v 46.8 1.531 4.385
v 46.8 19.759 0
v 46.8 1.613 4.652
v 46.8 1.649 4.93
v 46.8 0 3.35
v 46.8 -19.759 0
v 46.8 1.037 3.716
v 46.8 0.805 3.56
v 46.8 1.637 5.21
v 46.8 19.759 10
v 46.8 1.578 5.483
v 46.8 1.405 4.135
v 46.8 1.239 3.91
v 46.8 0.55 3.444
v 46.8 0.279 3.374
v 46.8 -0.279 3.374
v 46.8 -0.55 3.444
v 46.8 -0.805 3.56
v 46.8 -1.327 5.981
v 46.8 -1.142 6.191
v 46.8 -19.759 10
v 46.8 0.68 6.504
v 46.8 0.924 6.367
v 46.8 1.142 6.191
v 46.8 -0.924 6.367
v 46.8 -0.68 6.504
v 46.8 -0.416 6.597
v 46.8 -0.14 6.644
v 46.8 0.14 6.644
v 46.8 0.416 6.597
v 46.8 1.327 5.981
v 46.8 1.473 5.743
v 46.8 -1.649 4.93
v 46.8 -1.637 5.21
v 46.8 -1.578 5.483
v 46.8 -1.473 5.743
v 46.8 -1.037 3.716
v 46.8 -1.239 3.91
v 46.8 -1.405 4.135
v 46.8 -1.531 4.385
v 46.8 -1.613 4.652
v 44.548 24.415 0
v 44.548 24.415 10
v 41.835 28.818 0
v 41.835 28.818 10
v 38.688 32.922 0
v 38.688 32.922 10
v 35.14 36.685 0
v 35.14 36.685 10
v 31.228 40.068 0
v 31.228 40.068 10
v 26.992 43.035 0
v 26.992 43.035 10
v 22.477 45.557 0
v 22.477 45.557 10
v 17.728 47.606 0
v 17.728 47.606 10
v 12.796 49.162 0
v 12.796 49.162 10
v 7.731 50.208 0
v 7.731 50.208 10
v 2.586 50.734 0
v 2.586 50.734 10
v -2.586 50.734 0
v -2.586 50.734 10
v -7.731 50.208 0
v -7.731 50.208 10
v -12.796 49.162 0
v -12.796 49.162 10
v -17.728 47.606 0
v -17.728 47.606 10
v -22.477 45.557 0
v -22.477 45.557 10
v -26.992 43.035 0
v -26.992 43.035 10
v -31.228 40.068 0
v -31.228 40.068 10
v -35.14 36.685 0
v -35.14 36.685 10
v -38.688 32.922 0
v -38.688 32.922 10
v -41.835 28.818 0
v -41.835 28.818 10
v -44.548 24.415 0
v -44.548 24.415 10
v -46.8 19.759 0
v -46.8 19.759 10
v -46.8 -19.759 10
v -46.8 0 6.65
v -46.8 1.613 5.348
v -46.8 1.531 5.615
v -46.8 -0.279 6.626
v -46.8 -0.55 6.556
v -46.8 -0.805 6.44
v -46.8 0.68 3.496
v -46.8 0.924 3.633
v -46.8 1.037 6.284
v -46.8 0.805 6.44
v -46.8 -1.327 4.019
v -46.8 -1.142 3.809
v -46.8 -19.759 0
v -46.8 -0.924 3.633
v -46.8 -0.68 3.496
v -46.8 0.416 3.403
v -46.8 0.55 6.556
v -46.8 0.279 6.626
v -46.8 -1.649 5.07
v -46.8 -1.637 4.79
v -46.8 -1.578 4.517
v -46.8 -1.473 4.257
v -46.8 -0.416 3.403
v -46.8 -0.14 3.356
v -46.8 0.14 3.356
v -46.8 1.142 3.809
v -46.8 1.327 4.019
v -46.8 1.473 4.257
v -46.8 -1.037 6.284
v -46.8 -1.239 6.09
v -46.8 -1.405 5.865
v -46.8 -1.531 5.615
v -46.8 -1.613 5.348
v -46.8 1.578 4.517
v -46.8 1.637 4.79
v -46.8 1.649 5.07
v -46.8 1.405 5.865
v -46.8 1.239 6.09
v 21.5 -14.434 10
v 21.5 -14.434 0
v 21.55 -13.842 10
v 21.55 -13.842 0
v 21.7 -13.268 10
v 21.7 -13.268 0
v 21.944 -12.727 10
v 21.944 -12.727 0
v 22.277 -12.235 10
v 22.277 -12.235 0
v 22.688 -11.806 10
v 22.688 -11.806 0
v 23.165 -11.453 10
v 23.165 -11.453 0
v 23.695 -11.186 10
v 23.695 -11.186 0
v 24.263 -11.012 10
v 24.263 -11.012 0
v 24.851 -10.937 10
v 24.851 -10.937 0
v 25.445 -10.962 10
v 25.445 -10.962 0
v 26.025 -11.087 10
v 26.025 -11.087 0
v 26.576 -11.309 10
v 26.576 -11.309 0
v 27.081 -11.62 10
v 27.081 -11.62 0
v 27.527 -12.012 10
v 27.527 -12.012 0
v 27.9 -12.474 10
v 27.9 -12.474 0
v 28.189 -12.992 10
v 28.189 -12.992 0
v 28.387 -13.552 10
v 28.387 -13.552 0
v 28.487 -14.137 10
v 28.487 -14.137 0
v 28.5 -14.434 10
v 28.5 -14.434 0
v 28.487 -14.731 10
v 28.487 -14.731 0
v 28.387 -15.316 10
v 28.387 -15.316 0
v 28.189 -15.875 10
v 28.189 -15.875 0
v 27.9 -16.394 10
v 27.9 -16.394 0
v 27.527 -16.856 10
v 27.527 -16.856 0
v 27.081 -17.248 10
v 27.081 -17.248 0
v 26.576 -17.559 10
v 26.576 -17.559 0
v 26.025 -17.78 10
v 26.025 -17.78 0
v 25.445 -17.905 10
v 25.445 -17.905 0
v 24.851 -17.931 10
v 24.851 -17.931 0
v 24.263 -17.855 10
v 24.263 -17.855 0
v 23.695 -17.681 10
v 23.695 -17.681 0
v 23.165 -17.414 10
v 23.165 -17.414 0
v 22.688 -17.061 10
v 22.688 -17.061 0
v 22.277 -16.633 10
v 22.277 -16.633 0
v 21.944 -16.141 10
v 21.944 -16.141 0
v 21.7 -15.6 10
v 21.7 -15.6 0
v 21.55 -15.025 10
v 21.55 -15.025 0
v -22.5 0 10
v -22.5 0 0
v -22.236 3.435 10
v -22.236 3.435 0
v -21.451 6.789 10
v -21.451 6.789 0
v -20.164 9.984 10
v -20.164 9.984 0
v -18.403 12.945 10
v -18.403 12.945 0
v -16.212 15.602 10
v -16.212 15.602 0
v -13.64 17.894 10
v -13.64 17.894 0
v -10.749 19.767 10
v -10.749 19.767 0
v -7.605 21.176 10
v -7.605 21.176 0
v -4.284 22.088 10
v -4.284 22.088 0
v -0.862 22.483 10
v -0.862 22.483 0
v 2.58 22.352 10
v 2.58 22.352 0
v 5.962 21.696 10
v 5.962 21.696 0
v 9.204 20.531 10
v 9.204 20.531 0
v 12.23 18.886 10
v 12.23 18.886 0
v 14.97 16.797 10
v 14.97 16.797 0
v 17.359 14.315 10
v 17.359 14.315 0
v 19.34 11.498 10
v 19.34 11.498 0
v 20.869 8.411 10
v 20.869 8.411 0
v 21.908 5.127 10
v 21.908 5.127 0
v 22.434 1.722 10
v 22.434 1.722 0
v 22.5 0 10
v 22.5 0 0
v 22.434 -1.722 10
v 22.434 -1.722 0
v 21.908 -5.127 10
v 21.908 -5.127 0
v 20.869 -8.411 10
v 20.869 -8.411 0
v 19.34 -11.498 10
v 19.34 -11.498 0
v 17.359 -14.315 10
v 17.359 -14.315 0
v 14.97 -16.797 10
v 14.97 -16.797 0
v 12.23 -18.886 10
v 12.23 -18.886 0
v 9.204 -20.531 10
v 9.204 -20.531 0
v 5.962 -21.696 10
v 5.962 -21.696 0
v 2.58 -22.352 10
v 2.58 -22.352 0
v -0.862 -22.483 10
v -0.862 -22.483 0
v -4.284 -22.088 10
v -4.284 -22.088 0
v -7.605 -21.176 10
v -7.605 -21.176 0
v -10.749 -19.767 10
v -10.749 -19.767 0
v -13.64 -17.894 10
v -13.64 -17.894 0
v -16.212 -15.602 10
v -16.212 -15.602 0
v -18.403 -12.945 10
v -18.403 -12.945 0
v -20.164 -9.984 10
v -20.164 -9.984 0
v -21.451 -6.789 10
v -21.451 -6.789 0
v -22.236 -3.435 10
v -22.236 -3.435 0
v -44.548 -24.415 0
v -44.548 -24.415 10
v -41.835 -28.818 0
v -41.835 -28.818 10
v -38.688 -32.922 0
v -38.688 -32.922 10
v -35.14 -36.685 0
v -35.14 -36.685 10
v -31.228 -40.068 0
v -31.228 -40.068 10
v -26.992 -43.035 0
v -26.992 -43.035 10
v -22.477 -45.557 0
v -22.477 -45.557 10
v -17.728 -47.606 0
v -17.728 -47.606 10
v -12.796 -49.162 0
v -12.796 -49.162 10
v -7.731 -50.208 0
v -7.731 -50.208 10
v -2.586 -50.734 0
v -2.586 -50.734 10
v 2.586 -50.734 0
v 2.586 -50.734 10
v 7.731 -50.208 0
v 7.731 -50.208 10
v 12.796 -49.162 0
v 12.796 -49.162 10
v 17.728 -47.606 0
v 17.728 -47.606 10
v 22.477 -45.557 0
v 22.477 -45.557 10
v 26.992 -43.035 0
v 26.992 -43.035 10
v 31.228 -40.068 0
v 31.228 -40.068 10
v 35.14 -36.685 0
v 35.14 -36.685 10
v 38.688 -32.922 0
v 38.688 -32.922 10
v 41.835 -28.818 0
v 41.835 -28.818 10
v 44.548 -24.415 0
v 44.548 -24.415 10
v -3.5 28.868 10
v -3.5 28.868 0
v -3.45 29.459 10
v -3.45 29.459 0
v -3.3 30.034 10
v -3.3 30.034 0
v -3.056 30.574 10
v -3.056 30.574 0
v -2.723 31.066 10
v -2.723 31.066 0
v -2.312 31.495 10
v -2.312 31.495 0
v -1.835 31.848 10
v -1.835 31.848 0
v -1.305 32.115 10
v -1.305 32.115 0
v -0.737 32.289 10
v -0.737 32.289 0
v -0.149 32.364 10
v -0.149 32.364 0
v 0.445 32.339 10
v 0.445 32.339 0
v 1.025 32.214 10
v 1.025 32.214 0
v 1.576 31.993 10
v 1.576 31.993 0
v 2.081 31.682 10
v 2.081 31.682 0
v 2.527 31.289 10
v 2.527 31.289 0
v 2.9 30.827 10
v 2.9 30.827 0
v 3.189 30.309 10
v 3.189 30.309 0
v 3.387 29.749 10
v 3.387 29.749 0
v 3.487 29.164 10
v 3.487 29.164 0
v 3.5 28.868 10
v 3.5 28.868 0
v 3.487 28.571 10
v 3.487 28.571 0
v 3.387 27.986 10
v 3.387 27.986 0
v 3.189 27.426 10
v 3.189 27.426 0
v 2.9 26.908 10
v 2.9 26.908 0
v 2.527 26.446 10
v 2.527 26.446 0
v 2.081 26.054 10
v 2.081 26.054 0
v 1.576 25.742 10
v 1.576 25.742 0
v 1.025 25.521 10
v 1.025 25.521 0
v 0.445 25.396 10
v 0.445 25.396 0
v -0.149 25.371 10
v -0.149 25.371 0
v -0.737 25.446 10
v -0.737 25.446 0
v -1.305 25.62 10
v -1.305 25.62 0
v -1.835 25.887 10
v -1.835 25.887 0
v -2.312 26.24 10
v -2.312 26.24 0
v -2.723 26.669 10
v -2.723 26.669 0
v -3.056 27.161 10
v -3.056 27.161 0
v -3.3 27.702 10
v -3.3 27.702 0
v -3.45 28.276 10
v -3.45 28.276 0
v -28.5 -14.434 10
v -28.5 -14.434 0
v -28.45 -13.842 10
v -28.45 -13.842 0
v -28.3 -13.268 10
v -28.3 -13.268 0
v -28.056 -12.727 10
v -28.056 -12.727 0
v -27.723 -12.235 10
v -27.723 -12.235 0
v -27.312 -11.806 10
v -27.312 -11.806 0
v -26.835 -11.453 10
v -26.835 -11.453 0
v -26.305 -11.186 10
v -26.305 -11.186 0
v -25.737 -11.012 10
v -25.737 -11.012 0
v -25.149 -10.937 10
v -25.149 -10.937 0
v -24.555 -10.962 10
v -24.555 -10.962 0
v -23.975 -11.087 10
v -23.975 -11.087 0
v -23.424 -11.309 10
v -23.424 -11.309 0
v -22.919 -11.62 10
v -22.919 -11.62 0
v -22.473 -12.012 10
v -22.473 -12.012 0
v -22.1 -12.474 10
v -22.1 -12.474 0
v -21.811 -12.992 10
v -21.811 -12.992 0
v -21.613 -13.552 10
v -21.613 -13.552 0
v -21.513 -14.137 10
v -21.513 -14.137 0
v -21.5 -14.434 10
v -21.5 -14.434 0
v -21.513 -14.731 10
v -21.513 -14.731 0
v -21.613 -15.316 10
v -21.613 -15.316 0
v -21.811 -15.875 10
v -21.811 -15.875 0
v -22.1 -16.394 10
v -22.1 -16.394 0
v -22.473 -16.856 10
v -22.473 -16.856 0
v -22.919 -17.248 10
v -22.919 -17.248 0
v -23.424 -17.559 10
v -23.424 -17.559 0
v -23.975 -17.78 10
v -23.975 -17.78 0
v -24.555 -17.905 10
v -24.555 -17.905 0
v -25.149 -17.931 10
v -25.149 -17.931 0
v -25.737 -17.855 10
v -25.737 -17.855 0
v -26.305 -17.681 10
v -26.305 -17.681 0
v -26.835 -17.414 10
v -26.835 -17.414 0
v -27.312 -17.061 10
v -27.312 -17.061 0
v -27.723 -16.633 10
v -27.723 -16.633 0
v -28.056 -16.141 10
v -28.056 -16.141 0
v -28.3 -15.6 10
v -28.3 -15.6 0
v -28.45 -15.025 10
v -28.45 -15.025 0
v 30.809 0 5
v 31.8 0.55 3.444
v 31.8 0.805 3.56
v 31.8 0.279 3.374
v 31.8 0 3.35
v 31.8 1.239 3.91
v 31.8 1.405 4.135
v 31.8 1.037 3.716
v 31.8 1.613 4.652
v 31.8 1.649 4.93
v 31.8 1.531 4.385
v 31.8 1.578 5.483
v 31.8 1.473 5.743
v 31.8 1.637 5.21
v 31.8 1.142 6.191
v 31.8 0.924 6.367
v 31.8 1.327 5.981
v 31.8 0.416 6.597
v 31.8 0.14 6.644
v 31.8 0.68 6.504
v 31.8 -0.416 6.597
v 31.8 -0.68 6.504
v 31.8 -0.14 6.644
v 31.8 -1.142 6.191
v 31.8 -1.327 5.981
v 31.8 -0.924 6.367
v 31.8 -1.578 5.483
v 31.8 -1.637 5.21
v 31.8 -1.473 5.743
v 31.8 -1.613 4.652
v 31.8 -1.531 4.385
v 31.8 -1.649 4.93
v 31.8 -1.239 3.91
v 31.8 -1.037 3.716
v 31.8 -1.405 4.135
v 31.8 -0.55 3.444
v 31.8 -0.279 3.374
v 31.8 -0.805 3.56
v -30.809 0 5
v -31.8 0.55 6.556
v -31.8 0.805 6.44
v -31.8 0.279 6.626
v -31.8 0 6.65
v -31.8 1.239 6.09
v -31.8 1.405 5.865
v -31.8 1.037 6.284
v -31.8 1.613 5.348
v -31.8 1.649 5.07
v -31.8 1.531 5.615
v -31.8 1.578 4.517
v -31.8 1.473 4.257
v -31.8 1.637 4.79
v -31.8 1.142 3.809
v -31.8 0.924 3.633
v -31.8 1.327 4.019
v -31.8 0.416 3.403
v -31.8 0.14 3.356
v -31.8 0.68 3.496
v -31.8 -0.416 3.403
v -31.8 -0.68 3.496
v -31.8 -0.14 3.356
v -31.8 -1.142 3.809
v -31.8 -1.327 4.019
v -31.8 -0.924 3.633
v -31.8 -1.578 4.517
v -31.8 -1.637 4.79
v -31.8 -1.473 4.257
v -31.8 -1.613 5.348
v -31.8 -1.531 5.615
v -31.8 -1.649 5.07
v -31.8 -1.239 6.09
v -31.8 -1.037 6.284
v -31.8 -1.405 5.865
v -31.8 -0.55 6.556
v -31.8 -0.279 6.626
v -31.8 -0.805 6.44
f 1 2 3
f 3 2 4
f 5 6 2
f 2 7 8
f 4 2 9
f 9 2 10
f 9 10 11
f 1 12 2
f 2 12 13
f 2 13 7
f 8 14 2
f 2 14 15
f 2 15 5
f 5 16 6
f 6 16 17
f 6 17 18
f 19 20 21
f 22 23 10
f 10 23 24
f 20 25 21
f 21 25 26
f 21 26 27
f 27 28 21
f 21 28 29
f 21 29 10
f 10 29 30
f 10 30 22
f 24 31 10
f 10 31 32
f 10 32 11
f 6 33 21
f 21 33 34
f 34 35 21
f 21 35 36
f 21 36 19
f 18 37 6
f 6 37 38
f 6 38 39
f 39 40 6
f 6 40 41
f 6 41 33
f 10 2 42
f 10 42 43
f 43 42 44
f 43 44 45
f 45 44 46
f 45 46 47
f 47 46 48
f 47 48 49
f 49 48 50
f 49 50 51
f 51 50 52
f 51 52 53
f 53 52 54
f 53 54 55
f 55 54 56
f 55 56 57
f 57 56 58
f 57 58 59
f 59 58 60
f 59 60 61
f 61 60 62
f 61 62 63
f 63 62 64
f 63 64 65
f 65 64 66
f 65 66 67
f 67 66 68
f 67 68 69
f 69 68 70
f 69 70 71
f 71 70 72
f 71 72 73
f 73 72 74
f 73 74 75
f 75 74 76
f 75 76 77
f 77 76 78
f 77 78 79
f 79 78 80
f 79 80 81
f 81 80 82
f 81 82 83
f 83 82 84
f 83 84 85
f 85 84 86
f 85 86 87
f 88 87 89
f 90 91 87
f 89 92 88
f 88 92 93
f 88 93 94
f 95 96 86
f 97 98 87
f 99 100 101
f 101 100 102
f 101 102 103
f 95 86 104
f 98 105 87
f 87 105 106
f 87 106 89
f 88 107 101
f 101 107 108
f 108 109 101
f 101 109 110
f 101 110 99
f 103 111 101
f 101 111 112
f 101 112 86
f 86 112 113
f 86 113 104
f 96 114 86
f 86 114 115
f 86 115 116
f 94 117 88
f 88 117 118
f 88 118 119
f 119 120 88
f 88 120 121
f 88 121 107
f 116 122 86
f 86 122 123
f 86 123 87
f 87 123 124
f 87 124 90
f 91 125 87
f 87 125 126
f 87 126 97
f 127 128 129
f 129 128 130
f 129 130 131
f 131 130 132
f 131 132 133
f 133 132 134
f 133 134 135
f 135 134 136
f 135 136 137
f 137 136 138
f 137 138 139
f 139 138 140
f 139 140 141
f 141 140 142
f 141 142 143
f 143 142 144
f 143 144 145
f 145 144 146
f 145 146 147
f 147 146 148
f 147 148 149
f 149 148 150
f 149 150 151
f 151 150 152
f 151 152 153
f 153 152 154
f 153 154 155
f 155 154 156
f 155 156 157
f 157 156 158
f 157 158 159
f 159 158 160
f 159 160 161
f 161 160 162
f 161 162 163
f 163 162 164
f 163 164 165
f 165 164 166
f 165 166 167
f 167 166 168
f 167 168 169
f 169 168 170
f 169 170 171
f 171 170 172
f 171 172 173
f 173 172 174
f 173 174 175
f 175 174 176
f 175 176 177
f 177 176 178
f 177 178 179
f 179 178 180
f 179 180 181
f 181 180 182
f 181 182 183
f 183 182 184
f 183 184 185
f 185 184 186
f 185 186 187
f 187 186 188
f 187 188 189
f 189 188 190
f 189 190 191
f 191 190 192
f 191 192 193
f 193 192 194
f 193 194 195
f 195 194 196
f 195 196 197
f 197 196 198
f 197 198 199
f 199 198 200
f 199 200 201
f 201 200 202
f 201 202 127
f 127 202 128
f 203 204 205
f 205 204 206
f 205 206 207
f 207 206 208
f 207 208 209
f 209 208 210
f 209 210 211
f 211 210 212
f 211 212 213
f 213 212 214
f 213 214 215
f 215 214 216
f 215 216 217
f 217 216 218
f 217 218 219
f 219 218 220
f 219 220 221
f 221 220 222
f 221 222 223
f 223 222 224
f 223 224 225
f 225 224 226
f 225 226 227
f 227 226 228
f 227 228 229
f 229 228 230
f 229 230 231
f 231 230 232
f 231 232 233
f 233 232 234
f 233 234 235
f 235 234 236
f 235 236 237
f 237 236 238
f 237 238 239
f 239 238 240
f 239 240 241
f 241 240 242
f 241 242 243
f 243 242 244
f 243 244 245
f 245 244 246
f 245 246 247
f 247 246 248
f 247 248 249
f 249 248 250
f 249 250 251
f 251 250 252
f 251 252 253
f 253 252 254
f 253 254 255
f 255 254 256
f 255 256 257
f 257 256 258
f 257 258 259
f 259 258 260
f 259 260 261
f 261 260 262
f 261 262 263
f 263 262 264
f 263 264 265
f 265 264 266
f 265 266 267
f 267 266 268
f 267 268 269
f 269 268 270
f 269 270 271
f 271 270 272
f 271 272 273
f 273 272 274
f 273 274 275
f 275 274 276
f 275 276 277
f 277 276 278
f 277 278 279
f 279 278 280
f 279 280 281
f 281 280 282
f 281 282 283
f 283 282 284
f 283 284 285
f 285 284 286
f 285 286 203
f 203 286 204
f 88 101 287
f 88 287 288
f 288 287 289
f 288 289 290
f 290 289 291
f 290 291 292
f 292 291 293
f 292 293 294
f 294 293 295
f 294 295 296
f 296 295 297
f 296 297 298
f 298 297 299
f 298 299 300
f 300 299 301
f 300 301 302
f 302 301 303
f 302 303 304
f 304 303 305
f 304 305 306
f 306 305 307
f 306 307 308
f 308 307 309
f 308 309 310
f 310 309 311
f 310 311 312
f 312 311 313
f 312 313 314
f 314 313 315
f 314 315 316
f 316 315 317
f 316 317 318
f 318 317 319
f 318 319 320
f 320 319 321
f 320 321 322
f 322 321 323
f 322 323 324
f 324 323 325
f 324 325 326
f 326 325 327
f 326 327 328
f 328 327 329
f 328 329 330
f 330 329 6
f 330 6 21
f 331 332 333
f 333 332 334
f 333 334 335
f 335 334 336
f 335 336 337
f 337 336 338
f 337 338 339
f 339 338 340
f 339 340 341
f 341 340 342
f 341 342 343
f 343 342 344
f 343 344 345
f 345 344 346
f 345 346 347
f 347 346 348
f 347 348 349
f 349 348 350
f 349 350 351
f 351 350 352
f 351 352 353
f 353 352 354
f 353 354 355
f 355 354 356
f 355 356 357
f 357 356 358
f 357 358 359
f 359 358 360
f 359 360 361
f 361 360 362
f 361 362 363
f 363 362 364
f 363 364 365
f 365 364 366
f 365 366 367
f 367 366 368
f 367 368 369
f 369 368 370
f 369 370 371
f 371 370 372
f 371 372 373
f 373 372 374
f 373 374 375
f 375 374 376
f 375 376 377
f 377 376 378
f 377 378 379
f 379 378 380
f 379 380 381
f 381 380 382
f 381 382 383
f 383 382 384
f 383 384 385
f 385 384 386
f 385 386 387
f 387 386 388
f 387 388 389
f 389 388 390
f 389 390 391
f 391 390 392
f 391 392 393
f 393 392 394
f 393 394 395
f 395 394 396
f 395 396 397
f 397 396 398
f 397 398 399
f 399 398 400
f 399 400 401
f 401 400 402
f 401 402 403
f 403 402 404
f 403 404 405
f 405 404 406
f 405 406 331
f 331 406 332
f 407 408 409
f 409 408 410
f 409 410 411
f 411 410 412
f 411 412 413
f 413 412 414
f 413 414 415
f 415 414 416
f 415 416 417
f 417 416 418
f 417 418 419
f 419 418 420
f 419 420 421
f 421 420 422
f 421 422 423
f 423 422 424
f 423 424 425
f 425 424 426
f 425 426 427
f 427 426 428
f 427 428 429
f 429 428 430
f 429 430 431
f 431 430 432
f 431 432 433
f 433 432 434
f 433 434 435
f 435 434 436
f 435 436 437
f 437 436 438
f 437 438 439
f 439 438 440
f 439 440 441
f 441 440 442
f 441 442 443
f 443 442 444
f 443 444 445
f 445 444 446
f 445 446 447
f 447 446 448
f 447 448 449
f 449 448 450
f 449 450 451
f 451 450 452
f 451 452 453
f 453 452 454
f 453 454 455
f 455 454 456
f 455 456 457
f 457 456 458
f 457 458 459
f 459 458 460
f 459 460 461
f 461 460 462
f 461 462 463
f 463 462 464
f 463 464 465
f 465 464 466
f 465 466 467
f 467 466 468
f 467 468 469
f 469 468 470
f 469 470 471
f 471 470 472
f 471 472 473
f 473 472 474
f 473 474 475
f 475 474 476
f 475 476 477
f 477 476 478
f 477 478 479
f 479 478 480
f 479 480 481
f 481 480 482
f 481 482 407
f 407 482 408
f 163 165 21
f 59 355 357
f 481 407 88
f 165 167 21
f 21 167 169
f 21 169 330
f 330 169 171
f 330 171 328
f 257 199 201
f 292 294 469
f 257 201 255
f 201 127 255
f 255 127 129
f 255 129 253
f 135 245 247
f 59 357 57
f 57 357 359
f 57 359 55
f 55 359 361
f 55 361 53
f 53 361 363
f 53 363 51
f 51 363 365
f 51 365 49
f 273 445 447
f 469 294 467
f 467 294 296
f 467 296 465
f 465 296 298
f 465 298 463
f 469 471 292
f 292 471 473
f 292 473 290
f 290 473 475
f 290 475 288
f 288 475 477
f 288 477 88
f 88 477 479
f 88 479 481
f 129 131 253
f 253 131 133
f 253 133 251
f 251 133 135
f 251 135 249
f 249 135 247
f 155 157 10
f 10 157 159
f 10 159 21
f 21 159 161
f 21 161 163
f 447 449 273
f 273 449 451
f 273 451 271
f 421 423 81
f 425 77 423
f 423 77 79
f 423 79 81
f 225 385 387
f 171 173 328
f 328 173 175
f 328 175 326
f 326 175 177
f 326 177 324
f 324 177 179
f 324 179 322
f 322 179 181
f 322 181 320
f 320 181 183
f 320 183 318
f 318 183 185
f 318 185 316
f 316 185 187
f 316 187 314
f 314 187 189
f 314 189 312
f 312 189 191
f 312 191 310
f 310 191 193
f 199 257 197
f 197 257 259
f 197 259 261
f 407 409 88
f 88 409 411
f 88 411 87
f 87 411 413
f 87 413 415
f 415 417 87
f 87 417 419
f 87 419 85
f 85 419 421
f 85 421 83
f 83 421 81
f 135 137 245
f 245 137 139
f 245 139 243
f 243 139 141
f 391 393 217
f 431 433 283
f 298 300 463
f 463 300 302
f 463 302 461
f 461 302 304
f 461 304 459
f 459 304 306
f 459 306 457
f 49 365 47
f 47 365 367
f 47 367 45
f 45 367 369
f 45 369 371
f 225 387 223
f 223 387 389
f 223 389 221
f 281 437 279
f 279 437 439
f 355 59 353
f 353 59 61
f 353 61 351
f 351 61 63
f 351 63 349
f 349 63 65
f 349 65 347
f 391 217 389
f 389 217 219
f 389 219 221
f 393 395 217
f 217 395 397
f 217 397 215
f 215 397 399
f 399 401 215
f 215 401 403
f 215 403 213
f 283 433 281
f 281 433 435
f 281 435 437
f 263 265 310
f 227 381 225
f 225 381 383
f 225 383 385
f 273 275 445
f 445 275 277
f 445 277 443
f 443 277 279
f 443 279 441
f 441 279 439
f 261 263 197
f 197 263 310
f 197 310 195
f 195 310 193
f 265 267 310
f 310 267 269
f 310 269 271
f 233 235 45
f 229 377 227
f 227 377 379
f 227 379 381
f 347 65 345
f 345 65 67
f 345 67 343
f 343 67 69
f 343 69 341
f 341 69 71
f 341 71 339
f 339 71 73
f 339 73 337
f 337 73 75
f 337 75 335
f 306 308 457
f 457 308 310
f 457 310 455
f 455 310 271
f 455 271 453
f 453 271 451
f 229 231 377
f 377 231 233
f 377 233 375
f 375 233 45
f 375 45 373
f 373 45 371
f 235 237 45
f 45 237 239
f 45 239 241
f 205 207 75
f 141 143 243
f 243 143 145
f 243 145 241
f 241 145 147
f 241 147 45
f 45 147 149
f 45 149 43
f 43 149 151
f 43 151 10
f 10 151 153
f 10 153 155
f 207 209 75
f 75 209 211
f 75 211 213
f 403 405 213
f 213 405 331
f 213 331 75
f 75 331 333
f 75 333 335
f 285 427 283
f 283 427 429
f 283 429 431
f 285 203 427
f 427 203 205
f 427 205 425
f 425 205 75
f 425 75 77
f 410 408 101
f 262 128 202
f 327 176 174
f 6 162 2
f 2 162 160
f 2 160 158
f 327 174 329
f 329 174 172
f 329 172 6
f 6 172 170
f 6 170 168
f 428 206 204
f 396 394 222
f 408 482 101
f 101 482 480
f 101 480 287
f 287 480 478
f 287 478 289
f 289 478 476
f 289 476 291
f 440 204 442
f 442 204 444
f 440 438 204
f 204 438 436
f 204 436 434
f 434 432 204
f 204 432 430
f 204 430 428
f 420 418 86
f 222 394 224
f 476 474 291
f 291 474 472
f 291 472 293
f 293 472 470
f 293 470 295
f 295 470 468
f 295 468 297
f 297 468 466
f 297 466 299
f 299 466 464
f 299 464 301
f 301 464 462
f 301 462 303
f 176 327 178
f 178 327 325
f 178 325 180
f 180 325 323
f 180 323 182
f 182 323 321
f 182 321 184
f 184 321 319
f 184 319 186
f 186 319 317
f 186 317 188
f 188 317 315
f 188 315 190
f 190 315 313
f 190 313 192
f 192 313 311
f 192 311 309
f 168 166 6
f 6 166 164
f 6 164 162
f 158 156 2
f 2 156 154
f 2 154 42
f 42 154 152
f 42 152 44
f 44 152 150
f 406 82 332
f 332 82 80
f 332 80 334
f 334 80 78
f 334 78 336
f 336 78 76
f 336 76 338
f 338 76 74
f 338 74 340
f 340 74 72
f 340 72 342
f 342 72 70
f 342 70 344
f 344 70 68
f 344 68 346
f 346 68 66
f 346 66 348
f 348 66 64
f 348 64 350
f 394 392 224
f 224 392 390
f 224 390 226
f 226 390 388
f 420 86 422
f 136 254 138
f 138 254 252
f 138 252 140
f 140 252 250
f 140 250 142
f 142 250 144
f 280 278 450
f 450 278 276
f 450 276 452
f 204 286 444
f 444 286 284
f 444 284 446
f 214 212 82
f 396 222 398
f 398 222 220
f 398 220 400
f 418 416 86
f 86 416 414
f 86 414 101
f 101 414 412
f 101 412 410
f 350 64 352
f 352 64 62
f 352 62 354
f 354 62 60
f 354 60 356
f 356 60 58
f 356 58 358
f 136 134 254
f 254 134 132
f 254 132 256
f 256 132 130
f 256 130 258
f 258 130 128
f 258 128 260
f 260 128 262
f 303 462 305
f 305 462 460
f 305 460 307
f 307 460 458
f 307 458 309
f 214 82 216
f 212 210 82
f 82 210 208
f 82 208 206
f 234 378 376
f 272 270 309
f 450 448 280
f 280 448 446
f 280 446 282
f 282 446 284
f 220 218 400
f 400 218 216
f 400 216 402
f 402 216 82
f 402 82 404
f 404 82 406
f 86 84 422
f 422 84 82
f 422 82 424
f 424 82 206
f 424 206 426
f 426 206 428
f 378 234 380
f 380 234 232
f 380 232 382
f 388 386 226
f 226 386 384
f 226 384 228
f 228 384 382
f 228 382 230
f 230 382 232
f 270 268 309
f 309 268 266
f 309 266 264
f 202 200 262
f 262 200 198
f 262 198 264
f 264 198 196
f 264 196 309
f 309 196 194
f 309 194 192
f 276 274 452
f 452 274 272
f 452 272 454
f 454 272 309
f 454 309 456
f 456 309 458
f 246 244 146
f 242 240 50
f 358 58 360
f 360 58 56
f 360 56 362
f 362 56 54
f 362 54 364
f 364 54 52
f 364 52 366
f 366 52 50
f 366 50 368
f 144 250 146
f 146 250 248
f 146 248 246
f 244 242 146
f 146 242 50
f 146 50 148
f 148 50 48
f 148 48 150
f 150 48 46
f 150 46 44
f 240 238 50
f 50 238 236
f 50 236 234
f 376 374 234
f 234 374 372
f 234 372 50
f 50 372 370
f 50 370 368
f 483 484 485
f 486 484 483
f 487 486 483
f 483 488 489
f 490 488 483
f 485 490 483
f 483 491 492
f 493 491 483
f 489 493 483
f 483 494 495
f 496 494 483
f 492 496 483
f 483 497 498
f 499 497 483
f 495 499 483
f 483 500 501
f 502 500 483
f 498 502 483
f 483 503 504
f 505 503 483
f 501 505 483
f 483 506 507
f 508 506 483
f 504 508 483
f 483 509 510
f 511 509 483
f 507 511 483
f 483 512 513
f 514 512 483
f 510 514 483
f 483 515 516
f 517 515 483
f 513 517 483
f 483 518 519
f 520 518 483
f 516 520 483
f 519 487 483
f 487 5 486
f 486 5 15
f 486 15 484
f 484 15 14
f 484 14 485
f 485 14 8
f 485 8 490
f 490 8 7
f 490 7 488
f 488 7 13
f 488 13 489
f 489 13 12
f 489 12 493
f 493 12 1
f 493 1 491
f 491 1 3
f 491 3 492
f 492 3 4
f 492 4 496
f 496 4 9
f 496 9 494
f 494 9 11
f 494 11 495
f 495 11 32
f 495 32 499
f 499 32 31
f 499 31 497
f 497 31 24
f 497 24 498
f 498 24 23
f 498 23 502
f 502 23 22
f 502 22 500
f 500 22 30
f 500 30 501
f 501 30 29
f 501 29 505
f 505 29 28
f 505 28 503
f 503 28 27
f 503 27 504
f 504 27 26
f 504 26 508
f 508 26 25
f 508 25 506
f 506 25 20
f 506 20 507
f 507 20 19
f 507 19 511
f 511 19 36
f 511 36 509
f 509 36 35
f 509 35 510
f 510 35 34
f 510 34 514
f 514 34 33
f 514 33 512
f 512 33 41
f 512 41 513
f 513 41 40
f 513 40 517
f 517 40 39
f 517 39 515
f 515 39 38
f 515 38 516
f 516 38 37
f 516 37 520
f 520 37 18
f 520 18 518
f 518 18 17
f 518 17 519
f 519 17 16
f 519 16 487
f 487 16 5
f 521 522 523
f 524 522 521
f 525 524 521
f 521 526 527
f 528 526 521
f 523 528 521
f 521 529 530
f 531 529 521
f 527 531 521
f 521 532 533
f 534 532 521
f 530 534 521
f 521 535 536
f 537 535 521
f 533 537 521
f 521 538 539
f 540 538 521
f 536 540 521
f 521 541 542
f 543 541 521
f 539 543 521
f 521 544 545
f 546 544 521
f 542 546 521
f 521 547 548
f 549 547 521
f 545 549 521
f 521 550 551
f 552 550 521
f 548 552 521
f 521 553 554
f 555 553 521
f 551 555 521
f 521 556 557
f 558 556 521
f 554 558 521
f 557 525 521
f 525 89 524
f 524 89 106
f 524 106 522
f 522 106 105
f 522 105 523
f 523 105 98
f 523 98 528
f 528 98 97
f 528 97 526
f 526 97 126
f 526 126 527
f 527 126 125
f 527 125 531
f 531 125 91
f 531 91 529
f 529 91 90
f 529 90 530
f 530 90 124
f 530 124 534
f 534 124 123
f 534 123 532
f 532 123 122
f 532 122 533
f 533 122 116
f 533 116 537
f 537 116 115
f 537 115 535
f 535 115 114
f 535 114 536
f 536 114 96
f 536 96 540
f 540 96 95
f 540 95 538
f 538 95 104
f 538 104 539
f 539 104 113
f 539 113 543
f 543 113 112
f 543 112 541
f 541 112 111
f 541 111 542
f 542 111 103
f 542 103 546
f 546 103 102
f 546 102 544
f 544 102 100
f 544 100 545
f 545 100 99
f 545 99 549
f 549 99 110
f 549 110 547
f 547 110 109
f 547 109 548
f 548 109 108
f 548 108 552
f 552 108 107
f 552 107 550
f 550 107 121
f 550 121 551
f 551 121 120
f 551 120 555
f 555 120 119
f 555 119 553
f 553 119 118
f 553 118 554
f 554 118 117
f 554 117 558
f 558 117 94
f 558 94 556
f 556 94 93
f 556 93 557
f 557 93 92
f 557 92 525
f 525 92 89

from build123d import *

# Parameters (mm, degrees)
SKETCH1_R           = 22.5
SKETCH1_R_2         = 3.5
BOSS_EXTRUDE1_DEPTH = 10


with BuildPart() as part:
    # Sketch1 → Boss-Extrude1 (new body)
    with BuildSketch(Plane.XY):
        with BuildLine():
            Line((46.8, 19.758542456), (46.8, -19.758542456))
            ThreePointArc((46.8, -19.758542456), (0, -50.8), (-46.8, -19.758542456))
            Line((-46.8, -19.758542456), (-46.8, 19.758542456))
            ThreePointArc((-46.8, 19.758542456), (0, 50.8), (46.8, 19.758542456))
        make_face()
        Circle(SKETCH1_R, mode=Mode.SUBTRACT)
        with Locations((0, 28.867513459)):
            Circle(SKETCH1_R_2, mode=Mode.SUBTRACT)
        with Locations((25, -14.43375673)):
            Circle(SKETCH1_R_2, mode=Mode.SUBTRACT)
        with Locations((-25, -14.43375673)):
            Circle(SKETCH1_R_2, mode=Mode.SUBTRACT)
    extrude(amount=BOSS_EXTRUDE1_DEPTH)

    # Sketch4 → M4x0.7 Tapped Hole1 (revolve, cut)
    with BuildSketch(Plane(origin=(46.8, 0, 5), x_dir=(0, 0, -1), z_dir=(0, 1, 0))):
        Polygon((0, 0), (0, 15.991420021), (1.65, 15), (1.65, 0), align=None)
    m4x0_7_tapped_hole1 = revolve(axis=Axis((53.15, 0, 5), (-1, 0, 0)), mode=Mode.SUBTRACT)

    # Mirror1: M4x0.7 Tapped Hole1 across plane
    add(m4x0_7_tapped_hole1.mirror(Plane(origin=(0, 0, 0), x_dir=(0, 0, 1), z_dir=(1, 0, 0))), mode=Mode.SUBTRACT)


solid = part.part
